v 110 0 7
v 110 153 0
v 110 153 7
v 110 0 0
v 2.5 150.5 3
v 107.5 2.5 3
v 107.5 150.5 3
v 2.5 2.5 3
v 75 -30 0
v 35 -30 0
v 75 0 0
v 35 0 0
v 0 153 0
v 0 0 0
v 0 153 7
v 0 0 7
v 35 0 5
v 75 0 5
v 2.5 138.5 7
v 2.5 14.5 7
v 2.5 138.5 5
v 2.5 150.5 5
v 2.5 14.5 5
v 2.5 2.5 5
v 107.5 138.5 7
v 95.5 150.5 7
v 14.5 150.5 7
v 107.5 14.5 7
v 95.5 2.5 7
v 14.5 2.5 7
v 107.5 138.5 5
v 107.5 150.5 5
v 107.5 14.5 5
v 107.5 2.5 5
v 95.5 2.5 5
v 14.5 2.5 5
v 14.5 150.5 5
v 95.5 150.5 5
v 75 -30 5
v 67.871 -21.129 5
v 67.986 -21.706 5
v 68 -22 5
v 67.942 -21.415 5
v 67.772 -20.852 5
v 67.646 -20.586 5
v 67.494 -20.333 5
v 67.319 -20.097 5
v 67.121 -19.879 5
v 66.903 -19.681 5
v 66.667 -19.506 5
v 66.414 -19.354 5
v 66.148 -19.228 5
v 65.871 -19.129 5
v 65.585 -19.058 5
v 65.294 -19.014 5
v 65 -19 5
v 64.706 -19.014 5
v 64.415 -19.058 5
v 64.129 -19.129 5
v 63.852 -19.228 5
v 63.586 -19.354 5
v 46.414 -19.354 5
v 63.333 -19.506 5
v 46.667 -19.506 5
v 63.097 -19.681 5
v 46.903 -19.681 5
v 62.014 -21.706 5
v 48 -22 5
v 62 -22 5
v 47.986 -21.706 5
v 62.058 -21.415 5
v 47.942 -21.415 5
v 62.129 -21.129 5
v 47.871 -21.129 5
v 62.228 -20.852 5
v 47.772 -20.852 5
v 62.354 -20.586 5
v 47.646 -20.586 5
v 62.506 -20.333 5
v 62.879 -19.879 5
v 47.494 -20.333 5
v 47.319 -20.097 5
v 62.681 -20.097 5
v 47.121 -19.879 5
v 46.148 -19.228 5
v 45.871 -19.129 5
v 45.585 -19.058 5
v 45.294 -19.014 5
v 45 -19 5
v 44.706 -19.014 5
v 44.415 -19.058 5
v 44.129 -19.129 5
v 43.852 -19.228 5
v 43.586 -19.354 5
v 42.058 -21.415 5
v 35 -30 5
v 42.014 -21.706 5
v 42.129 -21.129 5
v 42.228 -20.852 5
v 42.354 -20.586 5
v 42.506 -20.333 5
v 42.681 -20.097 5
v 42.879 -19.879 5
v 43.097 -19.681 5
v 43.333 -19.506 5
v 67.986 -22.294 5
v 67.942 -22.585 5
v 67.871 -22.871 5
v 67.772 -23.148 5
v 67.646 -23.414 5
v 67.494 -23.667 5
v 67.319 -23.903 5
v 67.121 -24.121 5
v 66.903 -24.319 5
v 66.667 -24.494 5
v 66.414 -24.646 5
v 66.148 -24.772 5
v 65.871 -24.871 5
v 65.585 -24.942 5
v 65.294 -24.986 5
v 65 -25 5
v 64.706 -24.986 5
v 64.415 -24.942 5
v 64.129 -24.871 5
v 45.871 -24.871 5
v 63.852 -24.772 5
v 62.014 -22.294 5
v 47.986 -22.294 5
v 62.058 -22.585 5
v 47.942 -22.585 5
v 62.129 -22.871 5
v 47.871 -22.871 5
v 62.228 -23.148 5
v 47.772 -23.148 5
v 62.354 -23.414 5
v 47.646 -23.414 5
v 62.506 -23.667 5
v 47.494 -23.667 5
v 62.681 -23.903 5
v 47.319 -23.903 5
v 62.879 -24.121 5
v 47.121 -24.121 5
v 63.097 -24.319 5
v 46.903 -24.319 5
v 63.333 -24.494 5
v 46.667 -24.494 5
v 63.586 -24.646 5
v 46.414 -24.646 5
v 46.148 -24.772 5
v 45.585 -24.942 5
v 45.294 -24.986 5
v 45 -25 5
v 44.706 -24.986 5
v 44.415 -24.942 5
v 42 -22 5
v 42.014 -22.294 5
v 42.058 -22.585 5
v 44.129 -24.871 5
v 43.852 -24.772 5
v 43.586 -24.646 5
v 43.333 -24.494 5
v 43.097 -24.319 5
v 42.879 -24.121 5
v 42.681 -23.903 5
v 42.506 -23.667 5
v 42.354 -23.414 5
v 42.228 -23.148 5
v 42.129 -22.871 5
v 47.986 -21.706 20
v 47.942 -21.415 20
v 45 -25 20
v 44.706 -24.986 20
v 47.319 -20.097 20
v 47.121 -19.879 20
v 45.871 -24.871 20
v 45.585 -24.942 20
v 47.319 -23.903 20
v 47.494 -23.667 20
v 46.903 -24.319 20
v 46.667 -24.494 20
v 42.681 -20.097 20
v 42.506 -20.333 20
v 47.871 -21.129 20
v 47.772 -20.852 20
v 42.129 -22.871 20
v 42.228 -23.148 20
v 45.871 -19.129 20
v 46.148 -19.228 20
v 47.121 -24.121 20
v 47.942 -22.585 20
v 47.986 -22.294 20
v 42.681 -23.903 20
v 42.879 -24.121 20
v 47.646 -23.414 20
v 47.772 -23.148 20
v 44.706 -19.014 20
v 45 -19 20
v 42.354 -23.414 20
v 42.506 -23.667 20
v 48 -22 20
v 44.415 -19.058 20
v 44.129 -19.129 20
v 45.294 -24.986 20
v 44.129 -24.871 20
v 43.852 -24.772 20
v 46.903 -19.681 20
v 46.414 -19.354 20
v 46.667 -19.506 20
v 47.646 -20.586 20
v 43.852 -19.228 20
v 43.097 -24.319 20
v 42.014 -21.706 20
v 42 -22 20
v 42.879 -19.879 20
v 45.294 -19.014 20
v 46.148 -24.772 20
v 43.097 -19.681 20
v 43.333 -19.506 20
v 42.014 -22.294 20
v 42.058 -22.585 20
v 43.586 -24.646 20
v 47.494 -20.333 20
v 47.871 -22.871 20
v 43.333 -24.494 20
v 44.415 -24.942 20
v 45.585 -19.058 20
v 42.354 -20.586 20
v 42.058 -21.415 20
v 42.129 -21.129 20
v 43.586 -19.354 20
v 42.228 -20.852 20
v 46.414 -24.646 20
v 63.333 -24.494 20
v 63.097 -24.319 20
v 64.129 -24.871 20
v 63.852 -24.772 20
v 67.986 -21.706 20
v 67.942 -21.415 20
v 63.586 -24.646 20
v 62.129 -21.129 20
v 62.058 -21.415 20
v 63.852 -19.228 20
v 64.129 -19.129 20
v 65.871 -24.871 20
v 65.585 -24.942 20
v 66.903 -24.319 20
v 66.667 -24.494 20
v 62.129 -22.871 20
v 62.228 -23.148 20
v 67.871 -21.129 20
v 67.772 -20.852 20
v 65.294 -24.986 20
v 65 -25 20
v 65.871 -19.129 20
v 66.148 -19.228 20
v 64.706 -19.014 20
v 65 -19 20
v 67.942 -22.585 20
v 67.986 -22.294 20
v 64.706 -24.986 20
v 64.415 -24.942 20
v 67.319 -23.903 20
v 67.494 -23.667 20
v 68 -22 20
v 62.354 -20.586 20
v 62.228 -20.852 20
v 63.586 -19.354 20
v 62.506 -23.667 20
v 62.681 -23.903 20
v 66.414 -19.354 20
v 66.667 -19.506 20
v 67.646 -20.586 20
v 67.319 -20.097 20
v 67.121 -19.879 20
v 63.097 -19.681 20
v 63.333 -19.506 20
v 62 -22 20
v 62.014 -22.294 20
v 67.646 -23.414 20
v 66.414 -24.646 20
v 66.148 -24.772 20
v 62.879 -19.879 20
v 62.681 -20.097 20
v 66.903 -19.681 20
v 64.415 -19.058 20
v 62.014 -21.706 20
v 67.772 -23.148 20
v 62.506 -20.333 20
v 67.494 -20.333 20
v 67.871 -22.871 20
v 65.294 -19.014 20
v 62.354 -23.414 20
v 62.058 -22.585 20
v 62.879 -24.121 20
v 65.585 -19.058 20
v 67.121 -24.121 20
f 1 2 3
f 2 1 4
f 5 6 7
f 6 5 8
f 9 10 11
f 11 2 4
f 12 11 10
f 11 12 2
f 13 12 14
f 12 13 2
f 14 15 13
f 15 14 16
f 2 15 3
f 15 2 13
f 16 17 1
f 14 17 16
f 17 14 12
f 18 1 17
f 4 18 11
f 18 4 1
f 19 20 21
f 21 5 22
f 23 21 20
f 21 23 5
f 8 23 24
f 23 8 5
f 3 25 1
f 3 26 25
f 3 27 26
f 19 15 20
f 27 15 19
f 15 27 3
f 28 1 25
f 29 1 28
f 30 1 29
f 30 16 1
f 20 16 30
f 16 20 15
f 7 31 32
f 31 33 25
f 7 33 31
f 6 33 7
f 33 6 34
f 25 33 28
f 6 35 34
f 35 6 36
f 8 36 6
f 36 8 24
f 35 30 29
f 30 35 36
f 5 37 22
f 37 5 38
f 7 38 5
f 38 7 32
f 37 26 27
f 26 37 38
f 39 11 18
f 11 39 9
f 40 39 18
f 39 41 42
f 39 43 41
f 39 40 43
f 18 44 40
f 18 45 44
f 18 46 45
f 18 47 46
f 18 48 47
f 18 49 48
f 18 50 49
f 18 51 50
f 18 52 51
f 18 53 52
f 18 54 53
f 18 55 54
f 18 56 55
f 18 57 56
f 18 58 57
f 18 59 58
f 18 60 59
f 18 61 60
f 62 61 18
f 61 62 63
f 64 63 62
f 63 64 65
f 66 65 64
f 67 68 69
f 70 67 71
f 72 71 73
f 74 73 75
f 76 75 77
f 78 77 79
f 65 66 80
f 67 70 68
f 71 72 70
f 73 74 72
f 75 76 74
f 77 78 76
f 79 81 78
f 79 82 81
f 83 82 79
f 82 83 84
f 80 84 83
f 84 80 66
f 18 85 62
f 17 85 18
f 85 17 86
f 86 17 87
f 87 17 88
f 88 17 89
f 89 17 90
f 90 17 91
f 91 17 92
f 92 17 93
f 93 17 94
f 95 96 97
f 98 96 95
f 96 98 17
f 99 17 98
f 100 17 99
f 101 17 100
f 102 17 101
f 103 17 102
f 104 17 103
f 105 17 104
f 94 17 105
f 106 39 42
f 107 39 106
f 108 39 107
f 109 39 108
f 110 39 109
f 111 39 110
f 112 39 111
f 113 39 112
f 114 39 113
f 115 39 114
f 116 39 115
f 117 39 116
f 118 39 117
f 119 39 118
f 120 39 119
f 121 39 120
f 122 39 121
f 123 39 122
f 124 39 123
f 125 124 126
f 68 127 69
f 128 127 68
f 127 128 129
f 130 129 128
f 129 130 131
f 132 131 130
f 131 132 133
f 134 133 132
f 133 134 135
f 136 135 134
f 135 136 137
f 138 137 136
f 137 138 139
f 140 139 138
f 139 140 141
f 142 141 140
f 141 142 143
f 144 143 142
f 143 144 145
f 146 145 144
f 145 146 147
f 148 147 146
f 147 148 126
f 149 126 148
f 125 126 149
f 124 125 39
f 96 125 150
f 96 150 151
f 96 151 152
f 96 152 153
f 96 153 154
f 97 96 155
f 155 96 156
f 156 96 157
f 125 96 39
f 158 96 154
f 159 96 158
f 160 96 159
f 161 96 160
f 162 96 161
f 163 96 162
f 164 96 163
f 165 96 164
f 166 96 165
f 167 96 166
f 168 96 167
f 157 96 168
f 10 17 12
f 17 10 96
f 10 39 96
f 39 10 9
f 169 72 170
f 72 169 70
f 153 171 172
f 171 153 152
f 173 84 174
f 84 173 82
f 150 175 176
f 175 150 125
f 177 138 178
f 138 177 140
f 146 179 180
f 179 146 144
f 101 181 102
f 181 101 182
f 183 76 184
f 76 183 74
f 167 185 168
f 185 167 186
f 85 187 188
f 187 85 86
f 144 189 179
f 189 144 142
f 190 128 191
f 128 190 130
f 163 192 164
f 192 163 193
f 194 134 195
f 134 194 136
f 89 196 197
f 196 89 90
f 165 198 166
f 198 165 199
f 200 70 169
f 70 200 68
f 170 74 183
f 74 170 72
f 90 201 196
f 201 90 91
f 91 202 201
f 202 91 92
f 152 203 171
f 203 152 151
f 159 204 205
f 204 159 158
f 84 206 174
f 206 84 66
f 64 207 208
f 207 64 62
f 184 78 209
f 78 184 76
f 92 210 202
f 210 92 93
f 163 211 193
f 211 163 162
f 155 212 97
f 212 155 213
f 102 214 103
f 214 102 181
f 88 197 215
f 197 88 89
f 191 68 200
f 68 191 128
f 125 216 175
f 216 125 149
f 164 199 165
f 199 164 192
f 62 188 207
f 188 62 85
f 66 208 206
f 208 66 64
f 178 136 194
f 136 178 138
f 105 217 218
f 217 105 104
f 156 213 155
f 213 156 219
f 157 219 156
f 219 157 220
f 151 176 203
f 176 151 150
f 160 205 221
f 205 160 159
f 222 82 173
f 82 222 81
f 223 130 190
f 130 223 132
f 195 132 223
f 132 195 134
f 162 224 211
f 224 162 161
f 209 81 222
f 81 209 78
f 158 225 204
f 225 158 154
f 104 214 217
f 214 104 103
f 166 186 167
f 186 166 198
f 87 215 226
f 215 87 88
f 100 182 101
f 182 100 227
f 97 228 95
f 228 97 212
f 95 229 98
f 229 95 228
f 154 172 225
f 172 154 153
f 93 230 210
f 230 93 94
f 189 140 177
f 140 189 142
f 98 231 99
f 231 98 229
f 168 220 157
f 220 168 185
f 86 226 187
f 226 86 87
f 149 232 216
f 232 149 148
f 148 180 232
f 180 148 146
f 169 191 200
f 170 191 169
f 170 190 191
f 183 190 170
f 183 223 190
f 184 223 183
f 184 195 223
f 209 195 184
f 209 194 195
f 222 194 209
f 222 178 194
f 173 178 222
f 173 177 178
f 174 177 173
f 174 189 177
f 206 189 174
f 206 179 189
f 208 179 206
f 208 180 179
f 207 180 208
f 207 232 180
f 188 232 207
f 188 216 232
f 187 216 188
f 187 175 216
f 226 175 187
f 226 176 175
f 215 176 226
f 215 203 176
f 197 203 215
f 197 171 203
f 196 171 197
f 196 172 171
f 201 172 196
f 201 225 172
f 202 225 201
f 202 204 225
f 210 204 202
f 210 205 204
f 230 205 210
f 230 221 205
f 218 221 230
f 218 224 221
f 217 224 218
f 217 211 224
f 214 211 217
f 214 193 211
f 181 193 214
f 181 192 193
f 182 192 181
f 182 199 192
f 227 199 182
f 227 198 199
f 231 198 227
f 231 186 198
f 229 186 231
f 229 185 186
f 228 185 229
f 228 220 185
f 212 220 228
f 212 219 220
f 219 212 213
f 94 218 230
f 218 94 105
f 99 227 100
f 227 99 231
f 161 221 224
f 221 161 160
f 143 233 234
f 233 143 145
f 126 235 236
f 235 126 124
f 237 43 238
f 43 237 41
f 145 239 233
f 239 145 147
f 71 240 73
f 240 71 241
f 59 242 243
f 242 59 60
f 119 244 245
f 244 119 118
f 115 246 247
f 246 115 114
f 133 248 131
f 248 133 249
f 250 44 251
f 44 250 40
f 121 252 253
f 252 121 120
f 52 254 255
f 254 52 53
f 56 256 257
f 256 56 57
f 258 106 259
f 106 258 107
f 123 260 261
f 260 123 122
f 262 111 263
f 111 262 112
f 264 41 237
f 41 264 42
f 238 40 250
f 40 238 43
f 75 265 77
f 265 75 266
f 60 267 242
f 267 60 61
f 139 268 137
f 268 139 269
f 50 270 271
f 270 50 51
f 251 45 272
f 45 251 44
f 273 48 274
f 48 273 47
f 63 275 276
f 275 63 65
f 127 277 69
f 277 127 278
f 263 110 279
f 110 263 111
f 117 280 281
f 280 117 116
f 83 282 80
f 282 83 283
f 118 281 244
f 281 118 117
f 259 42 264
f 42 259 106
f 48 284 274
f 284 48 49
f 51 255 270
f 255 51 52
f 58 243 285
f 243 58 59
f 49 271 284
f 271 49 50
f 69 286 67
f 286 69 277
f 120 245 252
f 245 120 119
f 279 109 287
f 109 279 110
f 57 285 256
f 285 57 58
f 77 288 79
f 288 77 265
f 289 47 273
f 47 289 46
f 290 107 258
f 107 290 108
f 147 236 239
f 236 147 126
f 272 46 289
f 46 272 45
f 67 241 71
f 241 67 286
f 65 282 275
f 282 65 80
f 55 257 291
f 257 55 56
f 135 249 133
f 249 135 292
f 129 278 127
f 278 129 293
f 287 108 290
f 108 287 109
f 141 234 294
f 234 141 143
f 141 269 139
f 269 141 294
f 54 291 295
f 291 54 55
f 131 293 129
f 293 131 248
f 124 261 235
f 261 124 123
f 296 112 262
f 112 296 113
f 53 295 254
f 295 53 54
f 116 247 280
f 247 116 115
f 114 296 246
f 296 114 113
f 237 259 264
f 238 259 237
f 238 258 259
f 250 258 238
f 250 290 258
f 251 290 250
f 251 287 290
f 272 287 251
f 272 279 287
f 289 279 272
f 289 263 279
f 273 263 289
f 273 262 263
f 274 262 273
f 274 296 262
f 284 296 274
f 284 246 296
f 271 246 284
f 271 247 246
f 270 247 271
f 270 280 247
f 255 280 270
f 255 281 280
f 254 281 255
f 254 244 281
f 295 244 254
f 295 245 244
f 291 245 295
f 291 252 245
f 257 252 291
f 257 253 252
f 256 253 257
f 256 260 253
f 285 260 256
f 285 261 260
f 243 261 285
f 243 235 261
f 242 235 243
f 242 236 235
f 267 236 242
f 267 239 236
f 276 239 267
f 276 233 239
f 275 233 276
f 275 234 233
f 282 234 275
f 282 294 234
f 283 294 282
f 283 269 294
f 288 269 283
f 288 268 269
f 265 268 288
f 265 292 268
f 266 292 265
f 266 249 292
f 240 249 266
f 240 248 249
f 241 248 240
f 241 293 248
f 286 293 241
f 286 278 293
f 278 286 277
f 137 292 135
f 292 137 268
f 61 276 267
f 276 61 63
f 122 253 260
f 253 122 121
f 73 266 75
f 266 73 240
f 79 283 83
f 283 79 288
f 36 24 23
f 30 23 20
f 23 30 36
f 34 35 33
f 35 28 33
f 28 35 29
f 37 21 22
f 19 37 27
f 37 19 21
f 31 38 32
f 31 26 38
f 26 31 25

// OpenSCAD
// Case per foglio A6 con braccetto e pocket triangolari
// === PARAMETRI MODIFICABILI ===
// Dimensioni foglio A6 (spazio interno utile)
a6_width = 105;
a6_height = 148;
base_thickness = 3;

// Bordino perimetrale
border_height = 4;       // Altezza del bordino
border_width = 2.5;      // Larghezza del bordino

// Pocket triangolari agli angoli
pocket_size = 12;        // Lato del triangolo
pocket_thickness = 2;  // Spessore dell'aletta triangolare
pocket_gap = 2;        // Distanza dalla sommità del bordino

// Braccetto e pin
pin_diameter = 6;
pin_height = 15;
pin_spacing = 20;
pin_offset = 5;          // Distanza dei pin dall'estremità libera del braccetto
arm_width = 40;
arm_thickness = 5;
arm_length = 30;

// Risoluzione cilindri
cylinder_resolution = 64;

// === MODULI ===

// Base del foglio A6 con bordino perimetrale
module a6_base() {
    // Dimensioni totali della base (foglio + bordini)
    total_width = a6_width + 2 * border_width;
    total_height = a6_height + 2 * border_width;
    
    // Base completa
    cube([total_width, total_height, base_thickness]);
    
    // Bordino perimetrale
    // Lato sinistro
    translate([0, 0, base_thickness])
        cube([border_width, total_height, border_height]);
    
    // Lato destro
    translate([total_width - border_width, 0, base_thickness])
        cube([border_width, total_height, border_height]);
    
    // Lato inferiore
    translate([0, 0, base_thickness])
        cube([total_width, border_width, border_height]);
    
    // Lato superiore
    translate([0, total_height - border_width, base_thickness])
        cube([total_width, border_width, border_height]);
}

// Pocket triangolare per tenere il foglio
module corner_pocket_triangle() {
    // Triangolo sottile che parte dall'altezza del bordino
    translate([0, 0, base_thickness + border_height - pocket_gap])
        linear_extrude(height = pocket_thickness)
            polygon(points = [[0, 0], [pocket_size, 0], [0, pocket_size]]);
}

// Braccetto con due pin sopra (spostati verso l'estremità libera)
module pin_arm() {
    cube([arm_width, arm_length, arm_thickness]);
    y_pin = pin_diameter/2 + pin_offset;
    
    // Pin sinistro
    translate([arm_width/2 - pin_spacing/2, y_pin, arm_thickness])
        cylinder(h=pin_height, d=pin_diameter, $fn=cylinder_resolution);
    
    // Pin destro
    translate([arm_width/2 + pin_spacing/2, y_pin, arm_thickness])
        cylinder(h=pin_height, d=pin_diameter, $fn=cylinder_resolution);
}

// === ASSEMBLAGGIO ===

module a6_case_with_arm() {
    // Dimensioni totali della base (foglio + bordini)
    total_width = a6_width + 2 * border_width;
    total_height = a6_height + 2 * border_width;
    
    union() {
        // Base
        a6_base();
        
        // 4 pocket triangolari agli angoli
        // In basso a sinistra
        translate([border_width, border_width, 0])
            corner_pocket_triangle();
        
        // In basso a destra
        translate([total_width - border_width, border_width, 0])
            rotate([0, 0, 90])
            corner_pocket_triangle();
        
        // In alto a sinistra
        translate([border_width, total_height - border_width, 0])
            rotate([0, 0, -90])
            corner_pocket_triangle();
        
        // In alto a destra
        translate([total_width - border_width, total_height - border_width, 0])
            rotate([0, 0, 180])
            corner_pocket_triangle();
        
        // Braccetto centrato sul lato corto in basso (lato libero)
        translate([total_width/2 - arm_width/2, -arm_length, 0])
            pin_arm();
    }
}

// === OUTPUT ===
a6_case_with_arm();
